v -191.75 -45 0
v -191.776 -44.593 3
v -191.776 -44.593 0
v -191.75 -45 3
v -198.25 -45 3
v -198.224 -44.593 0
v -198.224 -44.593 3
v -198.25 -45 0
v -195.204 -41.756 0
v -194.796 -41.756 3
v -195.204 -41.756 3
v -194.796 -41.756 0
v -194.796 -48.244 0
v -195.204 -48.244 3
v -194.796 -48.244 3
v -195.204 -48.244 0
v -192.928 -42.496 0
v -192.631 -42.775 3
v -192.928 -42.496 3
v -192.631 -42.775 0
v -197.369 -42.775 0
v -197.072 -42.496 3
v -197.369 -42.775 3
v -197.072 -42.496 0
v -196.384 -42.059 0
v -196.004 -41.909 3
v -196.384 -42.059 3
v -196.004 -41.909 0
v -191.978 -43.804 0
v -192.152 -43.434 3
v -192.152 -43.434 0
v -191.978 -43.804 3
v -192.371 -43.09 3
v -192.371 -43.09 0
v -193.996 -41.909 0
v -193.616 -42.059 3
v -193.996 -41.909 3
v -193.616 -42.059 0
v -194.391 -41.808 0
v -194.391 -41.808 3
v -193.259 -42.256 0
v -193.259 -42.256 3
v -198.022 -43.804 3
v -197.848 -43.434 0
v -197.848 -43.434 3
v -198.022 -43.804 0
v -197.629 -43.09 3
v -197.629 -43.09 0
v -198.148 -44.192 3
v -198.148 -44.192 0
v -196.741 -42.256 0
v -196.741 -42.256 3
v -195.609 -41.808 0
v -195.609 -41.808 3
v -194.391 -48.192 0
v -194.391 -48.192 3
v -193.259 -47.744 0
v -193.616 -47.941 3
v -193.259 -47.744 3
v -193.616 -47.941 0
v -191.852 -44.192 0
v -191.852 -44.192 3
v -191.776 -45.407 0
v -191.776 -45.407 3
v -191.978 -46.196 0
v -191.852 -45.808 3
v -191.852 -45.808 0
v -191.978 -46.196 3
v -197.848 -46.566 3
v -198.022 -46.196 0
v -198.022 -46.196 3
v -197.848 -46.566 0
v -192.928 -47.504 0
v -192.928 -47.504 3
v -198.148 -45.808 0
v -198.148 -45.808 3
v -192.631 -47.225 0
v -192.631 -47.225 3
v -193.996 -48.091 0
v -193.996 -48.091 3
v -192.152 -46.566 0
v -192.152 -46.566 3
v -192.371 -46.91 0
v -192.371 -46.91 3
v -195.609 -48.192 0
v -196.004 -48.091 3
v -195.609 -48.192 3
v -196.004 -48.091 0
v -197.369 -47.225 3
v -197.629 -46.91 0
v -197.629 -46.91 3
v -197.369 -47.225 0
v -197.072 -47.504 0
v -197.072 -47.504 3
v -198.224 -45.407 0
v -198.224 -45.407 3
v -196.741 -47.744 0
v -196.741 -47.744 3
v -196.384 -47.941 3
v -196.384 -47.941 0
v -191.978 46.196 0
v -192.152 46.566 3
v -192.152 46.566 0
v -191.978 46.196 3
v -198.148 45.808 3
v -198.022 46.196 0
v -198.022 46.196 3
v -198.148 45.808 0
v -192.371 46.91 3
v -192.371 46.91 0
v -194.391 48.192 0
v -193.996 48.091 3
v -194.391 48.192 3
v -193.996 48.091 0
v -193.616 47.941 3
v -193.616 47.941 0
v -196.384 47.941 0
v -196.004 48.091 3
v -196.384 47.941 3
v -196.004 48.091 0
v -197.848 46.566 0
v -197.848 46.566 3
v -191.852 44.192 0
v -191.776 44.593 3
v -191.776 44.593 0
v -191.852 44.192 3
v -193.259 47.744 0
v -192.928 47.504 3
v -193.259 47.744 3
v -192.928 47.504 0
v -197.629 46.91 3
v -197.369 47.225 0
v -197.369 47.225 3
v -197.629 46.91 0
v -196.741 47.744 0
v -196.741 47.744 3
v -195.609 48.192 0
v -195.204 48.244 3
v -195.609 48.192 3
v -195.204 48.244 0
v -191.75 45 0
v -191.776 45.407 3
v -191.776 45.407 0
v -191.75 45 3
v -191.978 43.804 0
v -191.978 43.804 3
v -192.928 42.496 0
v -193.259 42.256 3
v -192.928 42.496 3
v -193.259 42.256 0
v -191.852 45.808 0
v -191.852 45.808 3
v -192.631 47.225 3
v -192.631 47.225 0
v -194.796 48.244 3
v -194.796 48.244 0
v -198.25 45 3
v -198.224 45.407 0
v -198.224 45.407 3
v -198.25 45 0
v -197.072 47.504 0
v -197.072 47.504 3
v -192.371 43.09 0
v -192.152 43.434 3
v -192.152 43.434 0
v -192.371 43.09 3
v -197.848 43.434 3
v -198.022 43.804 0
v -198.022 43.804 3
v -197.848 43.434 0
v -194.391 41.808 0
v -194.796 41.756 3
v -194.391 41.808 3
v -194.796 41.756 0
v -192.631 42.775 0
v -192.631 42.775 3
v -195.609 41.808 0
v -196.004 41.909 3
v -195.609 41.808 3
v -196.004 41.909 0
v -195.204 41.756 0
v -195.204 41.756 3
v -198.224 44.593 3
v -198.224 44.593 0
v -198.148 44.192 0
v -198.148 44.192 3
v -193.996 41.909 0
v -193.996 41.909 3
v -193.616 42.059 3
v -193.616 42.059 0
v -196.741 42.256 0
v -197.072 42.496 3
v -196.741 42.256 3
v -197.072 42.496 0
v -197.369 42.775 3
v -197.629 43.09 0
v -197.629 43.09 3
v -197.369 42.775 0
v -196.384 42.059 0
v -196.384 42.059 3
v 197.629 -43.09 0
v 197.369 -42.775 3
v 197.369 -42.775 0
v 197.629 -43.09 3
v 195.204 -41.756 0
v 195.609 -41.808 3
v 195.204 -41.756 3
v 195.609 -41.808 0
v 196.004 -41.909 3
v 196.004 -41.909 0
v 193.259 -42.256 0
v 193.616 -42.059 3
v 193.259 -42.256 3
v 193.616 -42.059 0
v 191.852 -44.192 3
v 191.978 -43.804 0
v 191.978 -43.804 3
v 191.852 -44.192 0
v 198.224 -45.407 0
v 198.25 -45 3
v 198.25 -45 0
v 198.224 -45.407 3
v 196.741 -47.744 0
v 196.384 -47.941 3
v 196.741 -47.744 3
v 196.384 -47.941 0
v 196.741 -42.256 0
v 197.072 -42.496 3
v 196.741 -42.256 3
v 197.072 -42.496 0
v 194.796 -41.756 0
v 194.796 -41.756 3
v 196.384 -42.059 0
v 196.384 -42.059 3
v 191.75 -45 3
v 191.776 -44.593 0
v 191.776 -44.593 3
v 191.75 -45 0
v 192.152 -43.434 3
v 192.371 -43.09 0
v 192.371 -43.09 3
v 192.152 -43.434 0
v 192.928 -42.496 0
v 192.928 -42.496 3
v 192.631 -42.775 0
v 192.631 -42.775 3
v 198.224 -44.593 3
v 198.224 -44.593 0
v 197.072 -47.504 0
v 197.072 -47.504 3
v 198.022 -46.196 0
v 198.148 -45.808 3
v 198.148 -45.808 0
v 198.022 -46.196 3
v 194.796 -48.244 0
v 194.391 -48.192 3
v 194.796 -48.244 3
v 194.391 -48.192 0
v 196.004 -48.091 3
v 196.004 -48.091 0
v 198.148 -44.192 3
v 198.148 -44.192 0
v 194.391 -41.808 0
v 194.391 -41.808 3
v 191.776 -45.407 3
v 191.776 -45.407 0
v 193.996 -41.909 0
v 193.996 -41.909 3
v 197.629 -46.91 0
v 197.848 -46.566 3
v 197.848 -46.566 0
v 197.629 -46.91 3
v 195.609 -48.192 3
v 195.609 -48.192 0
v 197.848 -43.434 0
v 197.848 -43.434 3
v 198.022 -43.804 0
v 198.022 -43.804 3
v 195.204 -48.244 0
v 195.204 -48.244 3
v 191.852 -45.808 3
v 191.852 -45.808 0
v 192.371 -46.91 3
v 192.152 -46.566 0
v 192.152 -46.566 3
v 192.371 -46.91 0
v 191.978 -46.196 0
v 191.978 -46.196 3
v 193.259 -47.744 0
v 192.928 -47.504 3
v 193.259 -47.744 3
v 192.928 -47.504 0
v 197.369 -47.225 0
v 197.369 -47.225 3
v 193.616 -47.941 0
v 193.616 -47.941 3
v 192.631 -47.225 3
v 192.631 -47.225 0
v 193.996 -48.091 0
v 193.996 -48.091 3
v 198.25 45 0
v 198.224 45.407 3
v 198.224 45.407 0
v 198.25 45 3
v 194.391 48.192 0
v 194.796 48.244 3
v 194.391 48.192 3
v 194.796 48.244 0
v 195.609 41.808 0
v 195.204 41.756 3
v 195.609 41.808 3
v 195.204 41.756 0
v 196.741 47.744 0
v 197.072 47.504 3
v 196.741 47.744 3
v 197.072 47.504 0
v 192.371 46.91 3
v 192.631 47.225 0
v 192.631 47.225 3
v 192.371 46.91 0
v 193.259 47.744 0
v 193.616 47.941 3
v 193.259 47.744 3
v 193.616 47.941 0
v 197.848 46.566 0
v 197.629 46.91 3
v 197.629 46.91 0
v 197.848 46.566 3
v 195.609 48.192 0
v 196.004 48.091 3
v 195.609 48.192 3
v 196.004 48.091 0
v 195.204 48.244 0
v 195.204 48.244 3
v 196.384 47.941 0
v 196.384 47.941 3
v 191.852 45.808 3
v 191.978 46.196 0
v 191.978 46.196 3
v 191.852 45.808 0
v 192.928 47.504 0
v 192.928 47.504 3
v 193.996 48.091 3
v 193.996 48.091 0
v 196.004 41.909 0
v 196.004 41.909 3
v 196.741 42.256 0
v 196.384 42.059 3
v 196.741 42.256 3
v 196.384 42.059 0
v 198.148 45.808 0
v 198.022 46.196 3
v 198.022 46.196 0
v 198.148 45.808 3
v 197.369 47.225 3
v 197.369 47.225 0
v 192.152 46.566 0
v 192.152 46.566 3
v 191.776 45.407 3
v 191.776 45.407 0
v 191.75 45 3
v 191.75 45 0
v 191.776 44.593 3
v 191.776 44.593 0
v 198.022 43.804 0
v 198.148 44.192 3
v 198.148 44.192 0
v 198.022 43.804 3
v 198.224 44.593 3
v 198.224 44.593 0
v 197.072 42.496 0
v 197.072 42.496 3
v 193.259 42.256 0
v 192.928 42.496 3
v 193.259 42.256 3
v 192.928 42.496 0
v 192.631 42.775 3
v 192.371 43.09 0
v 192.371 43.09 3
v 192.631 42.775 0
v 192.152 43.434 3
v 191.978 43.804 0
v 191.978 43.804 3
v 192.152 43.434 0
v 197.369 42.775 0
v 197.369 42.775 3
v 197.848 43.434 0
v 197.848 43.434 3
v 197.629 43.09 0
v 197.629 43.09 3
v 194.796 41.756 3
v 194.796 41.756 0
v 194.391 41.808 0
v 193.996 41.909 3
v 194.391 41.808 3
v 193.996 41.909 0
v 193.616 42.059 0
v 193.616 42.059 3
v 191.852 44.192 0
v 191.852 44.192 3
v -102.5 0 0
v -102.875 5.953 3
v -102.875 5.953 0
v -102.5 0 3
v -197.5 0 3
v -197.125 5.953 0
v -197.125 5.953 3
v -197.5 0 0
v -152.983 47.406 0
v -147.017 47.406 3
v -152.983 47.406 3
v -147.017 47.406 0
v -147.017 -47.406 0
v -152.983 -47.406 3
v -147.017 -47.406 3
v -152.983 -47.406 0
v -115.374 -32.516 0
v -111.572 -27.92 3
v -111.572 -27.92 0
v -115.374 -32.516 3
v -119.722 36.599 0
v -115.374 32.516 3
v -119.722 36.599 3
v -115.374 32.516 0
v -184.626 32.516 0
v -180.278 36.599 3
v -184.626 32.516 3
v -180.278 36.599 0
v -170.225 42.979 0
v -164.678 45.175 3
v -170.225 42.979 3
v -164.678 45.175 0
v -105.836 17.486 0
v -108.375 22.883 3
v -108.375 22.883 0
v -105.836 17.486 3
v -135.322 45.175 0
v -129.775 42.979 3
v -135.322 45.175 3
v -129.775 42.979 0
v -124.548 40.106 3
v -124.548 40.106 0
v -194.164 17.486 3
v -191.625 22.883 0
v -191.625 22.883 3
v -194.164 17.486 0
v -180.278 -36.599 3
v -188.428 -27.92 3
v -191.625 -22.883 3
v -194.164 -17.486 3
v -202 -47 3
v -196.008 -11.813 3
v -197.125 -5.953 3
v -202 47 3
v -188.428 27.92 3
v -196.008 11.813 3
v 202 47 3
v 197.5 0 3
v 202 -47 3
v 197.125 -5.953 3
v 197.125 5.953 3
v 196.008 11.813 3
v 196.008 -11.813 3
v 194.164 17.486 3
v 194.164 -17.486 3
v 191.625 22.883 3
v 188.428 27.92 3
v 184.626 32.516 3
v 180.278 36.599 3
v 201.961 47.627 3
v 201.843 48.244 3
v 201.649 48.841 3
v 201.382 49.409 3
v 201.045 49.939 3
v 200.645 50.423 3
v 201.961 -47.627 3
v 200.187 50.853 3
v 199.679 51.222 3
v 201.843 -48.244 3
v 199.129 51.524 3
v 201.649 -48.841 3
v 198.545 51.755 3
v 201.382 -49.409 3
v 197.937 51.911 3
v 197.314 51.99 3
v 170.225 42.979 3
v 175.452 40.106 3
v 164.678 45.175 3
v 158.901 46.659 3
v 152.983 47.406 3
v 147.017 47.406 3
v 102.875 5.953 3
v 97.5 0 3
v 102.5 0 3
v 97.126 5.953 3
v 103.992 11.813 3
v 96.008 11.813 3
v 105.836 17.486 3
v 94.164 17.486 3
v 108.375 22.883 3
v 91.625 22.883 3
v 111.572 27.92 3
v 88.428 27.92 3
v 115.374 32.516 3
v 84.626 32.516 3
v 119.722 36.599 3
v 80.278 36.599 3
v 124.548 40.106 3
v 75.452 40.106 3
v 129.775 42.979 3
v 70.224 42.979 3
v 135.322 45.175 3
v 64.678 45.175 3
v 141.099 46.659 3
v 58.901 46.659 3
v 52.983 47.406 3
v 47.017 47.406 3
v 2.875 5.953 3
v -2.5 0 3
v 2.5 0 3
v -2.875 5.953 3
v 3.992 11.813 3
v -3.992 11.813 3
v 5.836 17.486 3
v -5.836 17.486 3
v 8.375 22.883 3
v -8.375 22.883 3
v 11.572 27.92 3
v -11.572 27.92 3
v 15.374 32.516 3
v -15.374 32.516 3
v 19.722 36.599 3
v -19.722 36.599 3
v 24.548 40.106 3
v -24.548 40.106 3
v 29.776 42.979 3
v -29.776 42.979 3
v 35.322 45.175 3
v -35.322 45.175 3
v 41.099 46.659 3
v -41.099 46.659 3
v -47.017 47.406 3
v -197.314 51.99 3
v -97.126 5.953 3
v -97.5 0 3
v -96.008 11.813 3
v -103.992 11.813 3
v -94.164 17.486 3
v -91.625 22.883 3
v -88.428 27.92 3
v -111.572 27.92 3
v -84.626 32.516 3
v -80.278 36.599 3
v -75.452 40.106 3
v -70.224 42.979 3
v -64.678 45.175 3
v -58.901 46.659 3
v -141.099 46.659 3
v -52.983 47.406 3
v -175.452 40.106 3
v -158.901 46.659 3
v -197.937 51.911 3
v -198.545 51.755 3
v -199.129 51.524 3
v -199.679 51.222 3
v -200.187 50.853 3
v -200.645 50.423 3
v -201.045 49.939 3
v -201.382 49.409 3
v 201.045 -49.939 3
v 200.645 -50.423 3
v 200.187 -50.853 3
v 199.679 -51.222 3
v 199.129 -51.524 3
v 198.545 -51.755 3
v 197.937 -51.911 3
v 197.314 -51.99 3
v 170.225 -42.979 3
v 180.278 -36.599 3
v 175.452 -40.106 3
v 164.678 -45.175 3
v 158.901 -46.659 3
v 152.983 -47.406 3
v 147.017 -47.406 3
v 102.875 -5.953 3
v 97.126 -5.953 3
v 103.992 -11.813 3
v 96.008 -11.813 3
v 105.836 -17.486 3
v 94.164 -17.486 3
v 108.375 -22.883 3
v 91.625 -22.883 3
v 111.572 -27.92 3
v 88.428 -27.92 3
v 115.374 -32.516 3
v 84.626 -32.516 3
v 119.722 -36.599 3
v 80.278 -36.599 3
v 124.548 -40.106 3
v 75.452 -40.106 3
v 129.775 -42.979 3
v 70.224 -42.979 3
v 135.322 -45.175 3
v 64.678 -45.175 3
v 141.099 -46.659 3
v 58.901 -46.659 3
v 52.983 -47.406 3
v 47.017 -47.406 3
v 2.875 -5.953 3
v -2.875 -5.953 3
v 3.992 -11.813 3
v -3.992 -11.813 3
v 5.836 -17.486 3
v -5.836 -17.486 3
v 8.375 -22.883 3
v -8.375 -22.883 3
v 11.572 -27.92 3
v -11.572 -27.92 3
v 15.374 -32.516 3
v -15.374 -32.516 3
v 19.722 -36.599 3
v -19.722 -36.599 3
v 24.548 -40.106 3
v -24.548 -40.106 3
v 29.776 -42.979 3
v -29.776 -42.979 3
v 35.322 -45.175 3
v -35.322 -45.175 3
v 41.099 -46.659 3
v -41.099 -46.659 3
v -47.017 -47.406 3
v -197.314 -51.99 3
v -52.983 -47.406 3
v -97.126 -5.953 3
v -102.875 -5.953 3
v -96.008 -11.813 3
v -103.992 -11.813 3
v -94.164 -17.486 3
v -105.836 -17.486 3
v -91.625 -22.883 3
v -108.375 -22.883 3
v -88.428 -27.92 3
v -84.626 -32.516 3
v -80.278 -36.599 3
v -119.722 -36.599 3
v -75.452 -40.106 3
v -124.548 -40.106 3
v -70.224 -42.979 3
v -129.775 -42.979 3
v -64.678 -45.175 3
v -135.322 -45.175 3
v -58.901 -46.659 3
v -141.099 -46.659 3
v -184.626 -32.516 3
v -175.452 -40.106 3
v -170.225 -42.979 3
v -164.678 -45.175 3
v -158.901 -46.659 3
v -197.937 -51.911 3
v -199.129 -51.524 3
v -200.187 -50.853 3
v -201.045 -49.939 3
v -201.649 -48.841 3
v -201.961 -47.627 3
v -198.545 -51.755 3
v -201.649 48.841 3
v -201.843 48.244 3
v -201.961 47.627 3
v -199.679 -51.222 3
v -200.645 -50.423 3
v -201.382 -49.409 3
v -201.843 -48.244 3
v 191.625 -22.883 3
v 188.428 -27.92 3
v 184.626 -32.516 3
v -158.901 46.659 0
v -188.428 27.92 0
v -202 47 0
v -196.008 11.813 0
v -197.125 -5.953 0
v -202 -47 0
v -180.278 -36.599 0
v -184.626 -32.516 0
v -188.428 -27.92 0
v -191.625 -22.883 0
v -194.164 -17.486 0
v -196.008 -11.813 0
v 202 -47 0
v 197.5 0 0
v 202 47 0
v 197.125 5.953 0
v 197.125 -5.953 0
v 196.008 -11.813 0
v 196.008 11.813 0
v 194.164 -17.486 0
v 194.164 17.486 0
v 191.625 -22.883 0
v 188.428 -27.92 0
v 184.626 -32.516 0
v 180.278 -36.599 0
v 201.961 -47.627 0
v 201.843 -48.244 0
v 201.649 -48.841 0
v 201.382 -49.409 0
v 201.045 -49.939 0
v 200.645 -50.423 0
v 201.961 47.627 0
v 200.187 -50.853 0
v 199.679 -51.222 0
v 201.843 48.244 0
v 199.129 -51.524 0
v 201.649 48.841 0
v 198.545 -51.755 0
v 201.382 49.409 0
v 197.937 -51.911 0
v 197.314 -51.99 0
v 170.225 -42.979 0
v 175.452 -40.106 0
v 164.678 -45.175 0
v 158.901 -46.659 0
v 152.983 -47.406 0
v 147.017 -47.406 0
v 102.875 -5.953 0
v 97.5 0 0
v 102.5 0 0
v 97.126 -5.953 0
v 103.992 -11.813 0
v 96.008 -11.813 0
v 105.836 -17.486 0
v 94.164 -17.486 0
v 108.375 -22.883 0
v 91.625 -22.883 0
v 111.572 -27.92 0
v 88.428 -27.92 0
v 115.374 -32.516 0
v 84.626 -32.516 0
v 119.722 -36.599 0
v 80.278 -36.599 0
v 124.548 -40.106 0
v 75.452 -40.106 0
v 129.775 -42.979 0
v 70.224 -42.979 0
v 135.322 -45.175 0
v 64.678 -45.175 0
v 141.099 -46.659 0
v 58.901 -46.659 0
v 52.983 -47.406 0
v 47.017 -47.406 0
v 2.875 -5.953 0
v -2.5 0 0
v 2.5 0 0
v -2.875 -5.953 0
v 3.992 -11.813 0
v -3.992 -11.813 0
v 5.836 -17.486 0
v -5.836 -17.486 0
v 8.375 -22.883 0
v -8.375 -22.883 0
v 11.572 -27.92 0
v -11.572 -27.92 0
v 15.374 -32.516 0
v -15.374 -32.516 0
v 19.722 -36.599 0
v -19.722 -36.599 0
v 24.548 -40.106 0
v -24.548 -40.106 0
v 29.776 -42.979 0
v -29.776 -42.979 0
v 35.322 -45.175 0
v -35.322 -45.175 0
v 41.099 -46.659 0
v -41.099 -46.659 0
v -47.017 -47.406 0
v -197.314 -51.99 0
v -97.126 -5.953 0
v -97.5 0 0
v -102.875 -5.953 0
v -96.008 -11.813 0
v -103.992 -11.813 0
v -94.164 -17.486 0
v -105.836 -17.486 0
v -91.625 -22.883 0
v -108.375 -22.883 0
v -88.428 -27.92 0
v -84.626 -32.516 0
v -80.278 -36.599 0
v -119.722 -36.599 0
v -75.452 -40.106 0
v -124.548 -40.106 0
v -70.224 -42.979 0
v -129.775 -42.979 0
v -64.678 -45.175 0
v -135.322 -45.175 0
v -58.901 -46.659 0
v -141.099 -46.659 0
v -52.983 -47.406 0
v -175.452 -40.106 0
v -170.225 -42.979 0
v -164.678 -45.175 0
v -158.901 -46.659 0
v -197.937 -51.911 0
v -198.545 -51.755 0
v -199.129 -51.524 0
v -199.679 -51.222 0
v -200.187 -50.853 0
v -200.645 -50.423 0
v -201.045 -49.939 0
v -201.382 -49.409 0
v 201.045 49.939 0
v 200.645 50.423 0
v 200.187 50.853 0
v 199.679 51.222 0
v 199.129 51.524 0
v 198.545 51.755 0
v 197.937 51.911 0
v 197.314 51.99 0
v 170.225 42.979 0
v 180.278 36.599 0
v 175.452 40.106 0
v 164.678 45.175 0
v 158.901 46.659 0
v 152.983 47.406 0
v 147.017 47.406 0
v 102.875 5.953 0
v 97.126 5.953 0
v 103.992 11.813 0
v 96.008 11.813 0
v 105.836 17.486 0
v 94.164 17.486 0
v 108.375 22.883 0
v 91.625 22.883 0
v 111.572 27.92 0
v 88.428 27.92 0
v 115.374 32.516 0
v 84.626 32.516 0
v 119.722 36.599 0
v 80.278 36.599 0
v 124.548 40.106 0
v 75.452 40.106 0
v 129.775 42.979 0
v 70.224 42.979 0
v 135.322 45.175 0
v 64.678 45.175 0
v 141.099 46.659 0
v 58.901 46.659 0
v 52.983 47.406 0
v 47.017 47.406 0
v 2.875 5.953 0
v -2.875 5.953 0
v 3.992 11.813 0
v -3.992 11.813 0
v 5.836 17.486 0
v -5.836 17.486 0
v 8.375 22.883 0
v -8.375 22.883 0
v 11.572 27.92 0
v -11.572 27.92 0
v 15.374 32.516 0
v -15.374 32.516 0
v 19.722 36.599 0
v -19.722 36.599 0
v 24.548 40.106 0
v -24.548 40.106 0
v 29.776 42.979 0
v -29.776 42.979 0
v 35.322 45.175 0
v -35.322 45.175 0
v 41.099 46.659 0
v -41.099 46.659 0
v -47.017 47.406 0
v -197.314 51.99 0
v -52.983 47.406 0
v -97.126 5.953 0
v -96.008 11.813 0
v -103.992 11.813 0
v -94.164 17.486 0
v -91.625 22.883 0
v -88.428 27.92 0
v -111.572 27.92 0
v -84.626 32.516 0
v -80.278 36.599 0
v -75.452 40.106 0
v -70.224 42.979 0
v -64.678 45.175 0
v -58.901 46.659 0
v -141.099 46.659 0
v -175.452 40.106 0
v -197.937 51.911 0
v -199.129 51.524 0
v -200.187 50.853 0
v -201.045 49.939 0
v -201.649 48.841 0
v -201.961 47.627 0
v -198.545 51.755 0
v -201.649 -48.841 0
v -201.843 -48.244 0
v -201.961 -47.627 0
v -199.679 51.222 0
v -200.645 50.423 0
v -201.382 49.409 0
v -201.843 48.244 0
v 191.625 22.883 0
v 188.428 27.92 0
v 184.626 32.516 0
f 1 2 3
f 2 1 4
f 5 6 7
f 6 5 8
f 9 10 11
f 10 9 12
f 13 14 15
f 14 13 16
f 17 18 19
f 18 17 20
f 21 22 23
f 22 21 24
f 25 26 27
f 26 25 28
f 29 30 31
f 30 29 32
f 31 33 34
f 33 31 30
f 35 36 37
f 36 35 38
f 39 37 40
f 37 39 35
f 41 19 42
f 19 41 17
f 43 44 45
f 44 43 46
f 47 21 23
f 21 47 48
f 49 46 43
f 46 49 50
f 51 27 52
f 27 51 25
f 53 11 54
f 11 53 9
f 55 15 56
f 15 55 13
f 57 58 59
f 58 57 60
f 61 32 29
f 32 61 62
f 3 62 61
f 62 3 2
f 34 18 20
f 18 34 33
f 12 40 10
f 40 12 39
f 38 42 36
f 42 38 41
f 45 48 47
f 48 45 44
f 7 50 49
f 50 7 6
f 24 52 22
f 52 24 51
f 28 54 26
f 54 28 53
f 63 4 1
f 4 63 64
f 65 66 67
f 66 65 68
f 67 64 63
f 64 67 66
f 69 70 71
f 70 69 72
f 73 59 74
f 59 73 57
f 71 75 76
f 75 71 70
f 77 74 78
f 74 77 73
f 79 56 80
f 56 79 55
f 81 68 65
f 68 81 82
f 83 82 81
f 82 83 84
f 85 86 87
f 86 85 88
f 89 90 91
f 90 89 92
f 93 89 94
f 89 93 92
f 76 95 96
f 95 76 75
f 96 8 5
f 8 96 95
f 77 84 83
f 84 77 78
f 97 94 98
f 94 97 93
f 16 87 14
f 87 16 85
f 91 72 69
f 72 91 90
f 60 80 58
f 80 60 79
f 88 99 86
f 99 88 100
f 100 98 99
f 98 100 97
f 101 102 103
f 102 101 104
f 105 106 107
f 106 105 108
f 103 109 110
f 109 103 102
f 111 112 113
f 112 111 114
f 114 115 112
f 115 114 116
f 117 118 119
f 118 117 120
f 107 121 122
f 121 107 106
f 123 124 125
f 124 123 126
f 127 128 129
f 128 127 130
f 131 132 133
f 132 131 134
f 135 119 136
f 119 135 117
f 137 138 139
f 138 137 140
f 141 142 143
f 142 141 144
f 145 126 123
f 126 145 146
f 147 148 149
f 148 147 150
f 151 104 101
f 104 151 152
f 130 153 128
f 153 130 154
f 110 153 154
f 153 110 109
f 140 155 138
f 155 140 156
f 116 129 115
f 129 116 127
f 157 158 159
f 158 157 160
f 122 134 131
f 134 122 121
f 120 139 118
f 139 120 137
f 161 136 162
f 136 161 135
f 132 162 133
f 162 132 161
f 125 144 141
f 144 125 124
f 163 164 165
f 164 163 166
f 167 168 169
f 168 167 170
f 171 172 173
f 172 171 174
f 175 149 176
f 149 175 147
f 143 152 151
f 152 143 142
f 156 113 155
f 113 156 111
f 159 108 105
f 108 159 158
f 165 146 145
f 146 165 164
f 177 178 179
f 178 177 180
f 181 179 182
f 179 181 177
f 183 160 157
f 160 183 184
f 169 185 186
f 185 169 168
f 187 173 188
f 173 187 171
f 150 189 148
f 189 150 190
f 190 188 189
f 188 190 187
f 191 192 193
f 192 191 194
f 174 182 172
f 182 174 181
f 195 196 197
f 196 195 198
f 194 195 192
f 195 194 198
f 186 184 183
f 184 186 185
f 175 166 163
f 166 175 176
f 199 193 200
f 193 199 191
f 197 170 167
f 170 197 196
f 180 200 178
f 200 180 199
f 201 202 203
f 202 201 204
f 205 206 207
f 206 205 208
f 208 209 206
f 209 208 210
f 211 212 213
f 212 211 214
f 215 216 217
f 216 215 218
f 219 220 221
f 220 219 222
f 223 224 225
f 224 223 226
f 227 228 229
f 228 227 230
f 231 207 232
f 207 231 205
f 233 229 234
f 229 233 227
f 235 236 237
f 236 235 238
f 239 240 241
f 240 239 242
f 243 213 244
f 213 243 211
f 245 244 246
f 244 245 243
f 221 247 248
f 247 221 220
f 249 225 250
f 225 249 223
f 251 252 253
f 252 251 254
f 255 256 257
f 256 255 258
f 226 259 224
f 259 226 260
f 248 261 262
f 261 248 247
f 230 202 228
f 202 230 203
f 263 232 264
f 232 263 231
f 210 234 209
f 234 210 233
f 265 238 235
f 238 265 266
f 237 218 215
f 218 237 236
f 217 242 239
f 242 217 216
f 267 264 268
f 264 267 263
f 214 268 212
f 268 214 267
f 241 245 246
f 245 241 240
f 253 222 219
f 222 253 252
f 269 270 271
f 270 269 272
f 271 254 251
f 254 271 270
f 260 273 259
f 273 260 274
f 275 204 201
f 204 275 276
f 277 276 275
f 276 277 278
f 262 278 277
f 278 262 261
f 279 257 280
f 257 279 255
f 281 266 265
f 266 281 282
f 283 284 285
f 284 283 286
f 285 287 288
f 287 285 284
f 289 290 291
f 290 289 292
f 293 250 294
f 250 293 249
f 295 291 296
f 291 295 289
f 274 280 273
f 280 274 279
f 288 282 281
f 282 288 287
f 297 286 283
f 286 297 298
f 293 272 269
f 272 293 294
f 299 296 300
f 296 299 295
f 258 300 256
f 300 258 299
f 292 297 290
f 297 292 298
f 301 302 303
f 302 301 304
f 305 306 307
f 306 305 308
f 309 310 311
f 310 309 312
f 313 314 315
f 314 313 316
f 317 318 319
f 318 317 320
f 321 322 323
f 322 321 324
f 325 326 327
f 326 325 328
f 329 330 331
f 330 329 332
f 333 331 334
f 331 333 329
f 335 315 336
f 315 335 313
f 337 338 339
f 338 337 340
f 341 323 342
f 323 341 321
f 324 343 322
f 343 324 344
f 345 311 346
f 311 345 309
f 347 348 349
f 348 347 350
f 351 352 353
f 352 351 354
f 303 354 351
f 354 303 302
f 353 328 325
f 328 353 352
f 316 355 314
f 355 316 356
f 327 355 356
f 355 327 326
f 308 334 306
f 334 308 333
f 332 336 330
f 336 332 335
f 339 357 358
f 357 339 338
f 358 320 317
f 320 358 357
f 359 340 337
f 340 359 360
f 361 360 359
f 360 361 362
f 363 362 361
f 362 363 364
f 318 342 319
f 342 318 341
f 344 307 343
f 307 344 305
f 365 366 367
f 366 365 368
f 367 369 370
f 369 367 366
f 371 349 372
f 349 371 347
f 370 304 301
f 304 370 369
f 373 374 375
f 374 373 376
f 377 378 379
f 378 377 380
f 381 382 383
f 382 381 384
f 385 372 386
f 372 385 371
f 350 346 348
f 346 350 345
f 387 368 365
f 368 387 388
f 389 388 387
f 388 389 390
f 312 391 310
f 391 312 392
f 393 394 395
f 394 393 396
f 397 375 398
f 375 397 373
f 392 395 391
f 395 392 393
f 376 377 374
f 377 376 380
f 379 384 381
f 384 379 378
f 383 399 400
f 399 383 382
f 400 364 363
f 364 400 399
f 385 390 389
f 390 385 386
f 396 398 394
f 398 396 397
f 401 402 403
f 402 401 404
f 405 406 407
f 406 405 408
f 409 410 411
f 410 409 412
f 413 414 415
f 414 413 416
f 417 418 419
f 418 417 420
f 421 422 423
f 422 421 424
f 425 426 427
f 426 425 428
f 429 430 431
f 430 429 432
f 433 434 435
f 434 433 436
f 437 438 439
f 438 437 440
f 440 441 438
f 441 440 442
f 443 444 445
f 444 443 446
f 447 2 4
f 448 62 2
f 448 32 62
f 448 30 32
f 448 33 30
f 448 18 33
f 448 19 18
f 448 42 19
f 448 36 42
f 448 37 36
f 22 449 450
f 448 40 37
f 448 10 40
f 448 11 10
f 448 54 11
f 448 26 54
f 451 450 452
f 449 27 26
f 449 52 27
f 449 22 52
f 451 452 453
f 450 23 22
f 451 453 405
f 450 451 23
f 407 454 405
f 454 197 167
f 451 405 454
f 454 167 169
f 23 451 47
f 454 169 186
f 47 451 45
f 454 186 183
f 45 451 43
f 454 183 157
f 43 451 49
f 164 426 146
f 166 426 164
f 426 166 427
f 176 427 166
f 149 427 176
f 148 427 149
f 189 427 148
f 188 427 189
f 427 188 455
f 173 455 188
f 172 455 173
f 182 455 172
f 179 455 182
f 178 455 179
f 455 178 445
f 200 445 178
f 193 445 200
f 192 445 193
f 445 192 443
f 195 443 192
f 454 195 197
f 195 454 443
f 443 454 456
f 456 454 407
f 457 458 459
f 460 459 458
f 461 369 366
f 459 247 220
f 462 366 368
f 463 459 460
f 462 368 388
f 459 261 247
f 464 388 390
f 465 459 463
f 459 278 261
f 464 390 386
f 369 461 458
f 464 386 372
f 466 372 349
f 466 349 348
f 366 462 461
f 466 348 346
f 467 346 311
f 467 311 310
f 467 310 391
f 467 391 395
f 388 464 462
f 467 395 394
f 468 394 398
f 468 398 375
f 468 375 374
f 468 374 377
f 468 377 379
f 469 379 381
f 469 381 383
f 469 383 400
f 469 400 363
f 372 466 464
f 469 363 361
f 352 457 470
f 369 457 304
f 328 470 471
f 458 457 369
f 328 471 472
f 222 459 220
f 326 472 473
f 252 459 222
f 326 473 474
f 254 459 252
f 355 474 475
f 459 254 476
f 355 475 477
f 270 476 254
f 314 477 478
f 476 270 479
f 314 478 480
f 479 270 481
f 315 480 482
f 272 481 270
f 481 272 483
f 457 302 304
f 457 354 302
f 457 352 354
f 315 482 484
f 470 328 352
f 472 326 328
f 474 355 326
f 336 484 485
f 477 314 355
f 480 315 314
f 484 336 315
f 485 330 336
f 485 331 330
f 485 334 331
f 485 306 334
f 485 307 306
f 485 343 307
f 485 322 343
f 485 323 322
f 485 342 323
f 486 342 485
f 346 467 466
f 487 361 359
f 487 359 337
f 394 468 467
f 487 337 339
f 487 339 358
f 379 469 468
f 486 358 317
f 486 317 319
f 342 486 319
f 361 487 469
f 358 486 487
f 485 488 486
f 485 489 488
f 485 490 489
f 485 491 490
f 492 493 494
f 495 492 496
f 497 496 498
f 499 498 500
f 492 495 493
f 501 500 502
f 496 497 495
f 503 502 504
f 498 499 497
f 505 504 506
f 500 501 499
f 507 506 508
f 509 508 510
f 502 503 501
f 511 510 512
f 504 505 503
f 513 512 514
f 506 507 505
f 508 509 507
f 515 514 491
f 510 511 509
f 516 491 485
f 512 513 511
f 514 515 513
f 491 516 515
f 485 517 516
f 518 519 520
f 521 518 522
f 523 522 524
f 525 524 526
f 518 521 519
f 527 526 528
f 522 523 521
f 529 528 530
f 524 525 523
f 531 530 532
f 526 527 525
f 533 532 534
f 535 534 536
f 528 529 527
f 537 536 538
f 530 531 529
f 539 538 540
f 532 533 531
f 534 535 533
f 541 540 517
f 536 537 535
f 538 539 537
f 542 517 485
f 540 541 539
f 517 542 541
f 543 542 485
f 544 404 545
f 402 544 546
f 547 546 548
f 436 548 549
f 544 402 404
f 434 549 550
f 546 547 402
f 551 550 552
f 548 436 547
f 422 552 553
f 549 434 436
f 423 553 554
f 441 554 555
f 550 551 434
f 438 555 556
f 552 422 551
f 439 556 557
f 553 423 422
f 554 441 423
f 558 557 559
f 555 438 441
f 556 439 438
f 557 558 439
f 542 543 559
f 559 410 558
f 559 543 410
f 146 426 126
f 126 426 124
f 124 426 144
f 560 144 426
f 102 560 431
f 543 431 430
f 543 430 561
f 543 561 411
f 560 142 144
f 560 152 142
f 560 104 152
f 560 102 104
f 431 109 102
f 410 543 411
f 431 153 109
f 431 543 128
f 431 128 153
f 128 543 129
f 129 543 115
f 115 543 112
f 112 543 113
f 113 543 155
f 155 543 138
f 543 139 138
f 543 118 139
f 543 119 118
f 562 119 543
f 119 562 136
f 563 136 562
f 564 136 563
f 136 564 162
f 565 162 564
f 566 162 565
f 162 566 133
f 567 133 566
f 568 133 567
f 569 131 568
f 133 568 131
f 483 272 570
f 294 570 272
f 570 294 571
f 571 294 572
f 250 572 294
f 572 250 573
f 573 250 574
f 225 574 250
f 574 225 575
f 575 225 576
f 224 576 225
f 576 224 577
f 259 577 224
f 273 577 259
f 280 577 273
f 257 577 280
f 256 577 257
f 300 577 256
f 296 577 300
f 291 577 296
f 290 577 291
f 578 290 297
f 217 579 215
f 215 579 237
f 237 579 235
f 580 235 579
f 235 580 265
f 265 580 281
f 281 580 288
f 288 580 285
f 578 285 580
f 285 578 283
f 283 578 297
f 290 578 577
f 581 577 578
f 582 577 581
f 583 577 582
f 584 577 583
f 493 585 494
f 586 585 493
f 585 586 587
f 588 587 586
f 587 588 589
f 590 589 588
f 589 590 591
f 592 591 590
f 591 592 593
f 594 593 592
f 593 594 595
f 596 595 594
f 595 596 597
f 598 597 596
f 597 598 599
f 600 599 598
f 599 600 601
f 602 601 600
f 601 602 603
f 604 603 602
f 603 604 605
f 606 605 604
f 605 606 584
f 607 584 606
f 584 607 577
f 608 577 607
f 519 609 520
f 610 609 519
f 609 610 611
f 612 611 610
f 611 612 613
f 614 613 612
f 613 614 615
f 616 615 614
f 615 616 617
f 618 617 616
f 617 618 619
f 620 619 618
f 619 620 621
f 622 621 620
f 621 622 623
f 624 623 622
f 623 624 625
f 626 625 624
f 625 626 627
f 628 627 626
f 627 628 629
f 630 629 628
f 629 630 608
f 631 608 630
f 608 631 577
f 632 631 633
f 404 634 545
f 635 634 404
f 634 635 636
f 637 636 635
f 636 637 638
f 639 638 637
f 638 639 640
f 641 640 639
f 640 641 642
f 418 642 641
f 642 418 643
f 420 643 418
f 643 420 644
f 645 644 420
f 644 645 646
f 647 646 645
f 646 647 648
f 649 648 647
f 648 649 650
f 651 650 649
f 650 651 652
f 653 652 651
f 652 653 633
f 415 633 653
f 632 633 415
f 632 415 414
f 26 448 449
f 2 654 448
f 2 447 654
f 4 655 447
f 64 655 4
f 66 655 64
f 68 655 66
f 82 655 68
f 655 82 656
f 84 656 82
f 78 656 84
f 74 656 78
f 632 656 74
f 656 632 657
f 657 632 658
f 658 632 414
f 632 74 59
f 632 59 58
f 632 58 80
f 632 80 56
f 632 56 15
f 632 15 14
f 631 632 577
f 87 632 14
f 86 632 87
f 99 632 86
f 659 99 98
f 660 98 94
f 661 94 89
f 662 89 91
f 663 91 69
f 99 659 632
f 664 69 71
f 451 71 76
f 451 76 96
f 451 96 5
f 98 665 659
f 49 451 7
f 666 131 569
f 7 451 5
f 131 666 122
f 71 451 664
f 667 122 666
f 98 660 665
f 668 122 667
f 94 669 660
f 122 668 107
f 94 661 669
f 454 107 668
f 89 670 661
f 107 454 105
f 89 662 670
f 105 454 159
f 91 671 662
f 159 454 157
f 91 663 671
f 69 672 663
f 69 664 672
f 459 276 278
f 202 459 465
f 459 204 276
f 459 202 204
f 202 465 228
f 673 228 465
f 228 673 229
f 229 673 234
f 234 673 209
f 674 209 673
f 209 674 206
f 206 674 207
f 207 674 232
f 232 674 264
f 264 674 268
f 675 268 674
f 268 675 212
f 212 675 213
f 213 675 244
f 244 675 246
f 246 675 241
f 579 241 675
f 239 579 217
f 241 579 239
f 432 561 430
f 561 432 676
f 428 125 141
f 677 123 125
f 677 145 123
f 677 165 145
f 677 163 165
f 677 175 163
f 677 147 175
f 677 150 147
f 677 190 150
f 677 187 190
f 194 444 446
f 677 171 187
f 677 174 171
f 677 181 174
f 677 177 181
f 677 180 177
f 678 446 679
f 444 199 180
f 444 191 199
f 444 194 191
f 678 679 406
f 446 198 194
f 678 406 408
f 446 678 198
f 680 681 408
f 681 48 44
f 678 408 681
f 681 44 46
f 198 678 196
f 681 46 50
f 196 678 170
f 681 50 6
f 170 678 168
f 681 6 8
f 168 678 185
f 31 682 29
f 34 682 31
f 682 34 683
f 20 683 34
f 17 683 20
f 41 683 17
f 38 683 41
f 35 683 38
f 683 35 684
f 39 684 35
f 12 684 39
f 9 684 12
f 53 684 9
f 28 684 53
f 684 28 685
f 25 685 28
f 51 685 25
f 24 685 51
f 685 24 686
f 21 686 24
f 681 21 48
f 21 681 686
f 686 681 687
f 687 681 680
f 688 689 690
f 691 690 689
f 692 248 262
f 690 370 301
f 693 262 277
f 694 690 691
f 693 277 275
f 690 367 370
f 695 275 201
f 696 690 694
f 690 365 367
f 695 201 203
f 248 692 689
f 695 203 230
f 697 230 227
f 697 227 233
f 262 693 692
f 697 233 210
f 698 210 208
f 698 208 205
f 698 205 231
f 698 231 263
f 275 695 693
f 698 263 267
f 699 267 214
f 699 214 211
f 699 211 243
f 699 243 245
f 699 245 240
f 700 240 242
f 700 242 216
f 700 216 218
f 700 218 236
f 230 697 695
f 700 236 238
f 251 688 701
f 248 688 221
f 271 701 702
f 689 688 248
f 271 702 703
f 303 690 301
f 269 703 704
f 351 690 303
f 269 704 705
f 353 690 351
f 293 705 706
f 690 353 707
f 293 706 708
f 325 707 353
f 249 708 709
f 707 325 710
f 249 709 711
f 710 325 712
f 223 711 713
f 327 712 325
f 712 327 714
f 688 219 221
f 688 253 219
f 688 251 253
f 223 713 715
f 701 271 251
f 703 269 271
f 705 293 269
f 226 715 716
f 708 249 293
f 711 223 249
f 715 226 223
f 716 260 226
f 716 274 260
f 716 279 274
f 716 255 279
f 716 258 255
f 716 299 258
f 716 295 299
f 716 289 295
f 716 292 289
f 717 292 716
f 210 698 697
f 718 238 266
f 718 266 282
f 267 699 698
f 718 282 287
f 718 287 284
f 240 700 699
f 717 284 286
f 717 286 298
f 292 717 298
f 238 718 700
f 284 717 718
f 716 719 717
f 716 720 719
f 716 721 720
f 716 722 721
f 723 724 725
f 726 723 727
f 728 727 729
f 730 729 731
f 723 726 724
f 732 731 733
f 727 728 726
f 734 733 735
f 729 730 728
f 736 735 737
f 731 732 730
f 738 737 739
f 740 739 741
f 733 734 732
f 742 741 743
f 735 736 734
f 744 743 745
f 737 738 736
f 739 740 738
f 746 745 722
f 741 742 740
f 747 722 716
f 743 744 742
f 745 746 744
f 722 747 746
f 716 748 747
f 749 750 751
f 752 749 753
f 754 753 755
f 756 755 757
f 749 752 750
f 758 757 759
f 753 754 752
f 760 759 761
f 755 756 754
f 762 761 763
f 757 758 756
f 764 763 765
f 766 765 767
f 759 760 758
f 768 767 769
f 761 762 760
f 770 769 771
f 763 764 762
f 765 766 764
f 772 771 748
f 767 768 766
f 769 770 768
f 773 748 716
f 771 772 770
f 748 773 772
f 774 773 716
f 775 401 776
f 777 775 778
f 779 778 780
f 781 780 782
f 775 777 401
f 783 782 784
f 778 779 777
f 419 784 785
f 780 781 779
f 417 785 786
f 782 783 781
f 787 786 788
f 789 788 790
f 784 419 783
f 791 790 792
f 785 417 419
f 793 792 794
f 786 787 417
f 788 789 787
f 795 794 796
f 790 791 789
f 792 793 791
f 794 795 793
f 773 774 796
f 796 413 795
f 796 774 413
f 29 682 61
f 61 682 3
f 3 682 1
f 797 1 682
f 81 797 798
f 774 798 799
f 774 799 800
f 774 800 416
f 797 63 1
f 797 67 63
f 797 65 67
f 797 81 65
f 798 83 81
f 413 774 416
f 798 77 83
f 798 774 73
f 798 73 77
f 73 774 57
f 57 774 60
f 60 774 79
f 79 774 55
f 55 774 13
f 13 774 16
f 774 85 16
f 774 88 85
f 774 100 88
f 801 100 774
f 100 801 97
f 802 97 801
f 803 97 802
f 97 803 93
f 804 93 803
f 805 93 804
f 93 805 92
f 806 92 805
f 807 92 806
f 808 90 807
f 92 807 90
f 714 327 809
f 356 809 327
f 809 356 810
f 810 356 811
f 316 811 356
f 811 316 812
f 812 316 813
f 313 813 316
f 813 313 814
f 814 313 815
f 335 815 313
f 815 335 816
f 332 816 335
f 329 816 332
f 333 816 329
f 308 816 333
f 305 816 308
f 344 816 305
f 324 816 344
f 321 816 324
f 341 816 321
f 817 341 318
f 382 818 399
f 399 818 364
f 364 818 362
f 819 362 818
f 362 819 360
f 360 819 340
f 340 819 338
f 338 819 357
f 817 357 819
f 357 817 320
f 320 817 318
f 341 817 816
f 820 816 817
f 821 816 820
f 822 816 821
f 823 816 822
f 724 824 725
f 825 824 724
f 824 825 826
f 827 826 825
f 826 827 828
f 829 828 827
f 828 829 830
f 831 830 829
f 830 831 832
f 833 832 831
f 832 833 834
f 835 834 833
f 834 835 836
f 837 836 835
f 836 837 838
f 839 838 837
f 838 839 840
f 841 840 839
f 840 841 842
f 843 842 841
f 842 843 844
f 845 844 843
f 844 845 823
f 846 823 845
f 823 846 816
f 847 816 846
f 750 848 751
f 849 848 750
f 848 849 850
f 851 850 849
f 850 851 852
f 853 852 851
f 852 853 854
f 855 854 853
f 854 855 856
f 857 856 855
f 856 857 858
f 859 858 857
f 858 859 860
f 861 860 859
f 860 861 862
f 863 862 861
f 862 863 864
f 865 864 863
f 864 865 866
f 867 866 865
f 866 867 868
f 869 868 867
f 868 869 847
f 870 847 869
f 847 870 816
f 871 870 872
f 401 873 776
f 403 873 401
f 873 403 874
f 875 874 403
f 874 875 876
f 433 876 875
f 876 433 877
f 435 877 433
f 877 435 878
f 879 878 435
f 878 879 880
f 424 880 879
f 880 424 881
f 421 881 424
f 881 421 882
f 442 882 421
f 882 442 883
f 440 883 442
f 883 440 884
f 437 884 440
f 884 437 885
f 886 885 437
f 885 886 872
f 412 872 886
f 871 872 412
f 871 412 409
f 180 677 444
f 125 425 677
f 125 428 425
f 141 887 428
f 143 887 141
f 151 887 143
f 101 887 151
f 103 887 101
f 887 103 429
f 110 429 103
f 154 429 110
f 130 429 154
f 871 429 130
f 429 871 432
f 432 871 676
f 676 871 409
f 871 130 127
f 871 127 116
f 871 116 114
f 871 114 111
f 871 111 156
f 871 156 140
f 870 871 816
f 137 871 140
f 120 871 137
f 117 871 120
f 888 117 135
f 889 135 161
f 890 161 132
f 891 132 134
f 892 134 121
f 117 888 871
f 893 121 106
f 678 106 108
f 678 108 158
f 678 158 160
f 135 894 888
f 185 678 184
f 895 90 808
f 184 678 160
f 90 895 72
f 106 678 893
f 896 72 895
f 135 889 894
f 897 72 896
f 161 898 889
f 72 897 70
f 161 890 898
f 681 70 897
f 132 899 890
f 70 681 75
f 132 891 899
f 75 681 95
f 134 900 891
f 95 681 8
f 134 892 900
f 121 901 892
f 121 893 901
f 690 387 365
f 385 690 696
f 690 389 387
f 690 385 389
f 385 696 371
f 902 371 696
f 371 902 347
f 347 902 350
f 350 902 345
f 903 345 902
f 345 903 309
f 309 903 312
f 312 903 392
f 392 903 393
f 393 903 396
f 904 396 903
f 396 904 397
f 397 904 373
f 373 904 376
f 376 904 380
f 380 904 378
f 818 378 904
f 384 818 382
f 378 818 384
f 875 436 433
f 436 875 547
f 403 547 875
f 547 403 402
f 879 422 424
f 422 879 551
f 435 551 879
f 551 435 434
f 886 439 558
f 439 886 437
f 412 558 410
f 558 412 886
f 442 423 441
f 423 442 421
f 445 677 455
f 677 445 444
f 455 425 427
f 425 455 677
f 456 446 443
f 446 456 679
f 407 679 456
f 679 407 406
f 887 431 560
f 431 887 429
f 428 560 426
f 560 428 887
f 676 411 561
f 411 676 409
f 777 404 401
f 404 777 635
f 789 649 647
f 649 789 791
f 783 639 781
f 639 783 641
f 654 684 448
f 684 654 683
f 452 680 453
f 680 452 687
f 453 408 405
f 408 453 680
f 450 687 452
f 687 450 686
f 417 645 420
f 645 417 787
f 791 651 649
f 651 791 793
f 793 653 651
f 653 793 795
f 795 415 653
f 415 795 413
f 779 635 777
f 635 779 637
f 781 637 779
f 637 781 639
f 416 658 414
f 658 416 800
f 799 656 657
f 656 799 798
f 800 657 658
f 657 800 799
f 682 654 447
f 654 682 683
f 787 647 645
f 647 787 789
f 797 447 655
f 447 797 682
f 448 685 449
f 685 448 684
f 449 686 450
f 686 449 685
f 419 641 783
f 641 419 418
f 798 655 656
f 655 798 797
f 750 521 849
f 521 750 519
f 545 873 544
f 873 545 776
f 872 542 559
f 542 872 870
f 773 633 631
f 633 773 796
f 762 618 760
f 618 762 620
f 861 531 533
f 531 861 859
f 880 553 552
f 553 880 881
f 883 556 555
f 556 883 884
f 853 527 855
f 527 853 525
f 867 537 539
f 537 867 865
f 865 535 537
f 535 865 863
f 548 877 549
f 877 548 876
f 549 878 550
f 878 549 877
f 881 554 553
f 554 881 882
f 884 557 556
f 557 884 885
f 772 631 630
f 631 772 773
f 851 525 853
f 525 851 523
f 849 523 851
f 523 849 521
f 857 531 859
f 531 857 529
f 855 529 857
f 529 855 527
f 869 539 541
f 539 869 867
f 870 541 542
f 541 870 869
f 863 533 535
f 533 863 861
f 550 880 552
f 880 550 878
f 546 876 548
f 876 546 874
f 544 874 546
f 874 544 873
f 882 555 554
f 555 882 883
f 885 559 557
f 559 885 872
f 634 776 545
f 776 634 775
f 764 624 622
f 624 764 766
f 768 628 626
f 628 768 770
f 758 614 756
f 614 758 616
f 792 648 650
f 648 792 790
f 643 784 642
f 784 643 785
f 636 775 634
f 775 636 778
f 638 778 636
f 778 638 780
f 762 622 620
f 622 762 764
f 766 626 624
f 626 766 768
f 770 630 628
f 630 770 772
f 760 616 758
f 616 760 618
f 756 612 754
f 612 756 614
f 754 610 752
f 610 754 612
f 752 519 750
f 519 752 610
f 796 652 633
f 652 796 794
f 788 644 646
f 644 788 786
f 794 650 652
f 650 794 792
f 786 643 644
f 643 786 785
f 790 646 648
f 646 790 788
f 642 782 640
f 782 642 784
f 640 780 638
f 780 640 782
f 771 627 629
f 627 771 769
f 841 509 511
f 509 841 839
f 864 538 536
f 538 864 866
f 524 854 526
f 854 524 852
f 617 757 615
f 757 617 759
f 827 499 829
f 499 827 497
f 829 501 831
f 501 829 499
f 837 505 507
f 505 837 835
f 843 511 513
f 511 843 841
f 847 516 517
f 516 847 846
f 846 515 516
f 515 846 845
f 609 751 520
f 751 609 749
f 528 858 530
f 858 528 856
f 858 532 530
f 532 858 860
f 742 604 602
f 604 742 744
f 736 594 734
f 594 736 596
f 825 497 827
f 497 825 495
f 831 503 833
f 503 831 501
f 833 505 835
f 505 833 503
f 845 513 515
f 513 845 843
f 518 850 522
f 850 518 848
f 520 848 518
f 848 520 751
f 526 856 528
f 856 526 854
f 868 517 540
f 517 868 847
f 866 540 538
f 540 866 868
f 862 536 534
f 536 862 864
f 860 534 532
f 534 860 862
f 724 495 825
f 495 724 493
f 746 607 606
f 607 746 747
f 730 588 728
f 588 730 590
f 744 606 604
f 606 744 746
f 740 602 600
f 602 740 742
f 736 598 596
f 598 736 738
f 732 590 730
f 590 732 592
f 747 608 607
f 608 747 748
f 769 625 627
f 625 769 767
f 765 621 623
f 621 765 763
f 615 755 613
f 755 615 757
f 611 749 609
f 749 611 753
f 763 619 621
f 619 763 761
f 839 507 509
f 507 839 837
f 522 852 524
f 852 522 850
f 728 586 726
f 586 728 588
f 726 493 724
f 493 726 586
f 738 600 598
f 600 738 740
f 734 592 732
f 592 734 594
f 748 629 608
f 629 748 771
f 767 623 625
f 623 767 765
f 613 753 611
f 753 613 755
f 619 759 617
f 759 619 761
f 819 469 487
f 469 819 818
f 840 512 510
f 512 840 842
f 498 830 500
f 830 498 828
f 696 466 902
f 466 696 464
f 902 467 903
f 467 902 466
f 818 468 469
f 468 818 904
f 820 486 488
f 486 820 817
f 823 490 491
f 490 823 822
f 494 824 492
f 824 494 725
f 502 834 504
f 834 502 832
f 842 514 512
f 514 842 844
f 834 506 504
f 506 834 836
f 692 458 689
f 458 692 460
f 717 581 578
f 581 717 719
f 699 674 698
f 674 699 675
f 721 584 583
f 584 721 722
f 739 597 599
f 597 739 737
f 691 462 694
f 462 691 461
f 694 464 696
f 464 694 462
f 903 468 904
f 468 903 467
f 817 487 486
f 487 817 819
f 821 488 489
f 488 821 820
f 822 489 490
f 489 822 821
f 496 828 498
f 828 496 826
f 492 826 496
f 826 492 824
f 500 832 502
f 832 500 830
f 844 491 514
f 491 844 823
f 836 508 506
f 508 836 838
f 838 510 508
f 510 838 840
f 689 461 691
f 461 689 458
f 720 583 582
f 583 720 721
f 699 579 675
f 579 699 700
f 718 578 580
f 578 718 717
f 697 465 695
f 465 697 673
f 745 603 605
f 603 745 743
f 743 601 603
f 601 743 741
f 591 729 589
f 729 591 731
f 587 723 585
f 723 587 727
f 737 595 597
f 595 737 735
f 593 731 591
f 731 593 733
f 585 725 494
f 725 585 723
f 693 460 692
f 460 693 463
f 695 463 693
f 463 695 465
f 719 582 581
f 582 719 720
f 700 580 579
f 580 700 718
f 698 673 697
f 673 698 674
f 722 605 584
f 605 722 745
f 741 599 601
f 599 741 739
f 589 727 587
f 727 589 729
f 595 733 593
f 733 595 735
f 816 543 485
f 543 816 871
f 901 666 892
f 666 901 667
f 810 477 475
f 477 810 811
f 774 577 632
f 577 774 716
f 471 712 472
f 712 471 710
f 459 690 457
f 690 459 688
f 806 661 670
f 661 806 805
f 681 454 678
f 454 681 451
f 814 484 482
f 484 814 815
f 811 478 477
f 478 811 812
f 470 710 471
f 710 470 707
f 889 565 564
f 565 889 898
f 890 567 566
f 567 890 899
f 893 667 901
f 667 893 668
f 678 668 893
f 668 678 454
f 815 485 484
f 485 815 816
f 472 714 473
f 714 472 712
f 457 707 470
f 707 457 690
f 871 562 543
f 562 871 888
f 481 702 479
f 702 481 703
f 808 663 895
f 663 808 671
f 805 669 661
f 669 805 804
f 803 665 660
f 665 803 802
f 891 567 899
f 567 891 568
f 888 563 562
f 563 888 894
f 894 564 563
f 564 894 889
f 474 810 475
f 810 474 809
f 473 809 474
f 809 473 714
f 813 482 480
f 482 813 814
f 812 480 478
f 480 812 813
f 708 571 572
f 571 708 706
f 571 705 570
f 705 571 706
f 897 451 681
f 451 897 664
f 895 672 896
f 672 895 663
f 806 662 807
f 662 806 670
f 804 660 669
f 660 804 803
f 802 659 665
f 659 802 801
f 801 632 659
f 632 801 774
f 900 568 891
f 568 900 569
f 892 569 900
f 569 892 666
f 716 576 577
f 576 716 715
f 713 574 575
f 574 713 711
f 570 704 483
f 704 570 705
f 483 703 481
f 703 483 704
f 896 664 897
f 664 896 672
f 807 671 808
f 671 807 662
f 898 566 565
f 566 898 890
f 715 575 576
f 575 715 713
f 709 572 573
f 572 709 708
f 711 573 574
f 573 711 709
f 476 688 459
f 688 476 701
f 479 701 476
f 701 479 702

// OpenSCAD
$fn = 50;


difference() {
	union() {
		hull() {
			translate(v = [-197.0000000000, 47.0000000000, 0]) {
				cylinder(h = 3, r = 5);
			}
			translate(v = [197.0000000000, 47.0000000000, 0]) {
				cylinder(h = 3, r = 5);
			}
			translate(v = [-197.0000000000, -47.0000000000, 0]) {
				cylinder(h = 3, r = 5);
			}
			translate(v = [197.0000000000, -47.0000000000, 0]) {
				cylinder(h = 3, r = 5);
			}
		}
	}
	union() {
		#translate(v = [-195.0000000000, -45.0000000000, -100.0000000000]) {
			cylinder(h = 200, r = 3.2500000000);
		}
		#translate(v = [-195.0000000000, 45.0000000000, -100.0000000000]) {
			cylinder(h = 200, r = 3.2500000000);
		}
		#translate(v = [195.0000000000, -45.0000000000, -100.0000000000]) {
			cylinder(h = 200, r = 3.2500000000);
		}
		#translate(v = [195.0000000000, 45.0000000000, -100.0000000000]) {
			cylinder(h = 200, r = 3.2500000000);
		}
		#translate(v = [-150.0000000000, 0, 0]) {
			cylinder(h = 3, r = 47.5000000000);
		}
		#translate(v = [-50.0000000000, 0, 0]) {
			cylinder(h = 3, r = 47.5000000000);
		}
		#translate(v = [50.0000000000, 0, 0]) {
			cylinder(h = 3, r = 47.5000000000);
		}
		#translate(v = [150.0000000000, 0, 0]) {
			cylinder(h = 3, r = 47.5000000000);
		}
	}
}
